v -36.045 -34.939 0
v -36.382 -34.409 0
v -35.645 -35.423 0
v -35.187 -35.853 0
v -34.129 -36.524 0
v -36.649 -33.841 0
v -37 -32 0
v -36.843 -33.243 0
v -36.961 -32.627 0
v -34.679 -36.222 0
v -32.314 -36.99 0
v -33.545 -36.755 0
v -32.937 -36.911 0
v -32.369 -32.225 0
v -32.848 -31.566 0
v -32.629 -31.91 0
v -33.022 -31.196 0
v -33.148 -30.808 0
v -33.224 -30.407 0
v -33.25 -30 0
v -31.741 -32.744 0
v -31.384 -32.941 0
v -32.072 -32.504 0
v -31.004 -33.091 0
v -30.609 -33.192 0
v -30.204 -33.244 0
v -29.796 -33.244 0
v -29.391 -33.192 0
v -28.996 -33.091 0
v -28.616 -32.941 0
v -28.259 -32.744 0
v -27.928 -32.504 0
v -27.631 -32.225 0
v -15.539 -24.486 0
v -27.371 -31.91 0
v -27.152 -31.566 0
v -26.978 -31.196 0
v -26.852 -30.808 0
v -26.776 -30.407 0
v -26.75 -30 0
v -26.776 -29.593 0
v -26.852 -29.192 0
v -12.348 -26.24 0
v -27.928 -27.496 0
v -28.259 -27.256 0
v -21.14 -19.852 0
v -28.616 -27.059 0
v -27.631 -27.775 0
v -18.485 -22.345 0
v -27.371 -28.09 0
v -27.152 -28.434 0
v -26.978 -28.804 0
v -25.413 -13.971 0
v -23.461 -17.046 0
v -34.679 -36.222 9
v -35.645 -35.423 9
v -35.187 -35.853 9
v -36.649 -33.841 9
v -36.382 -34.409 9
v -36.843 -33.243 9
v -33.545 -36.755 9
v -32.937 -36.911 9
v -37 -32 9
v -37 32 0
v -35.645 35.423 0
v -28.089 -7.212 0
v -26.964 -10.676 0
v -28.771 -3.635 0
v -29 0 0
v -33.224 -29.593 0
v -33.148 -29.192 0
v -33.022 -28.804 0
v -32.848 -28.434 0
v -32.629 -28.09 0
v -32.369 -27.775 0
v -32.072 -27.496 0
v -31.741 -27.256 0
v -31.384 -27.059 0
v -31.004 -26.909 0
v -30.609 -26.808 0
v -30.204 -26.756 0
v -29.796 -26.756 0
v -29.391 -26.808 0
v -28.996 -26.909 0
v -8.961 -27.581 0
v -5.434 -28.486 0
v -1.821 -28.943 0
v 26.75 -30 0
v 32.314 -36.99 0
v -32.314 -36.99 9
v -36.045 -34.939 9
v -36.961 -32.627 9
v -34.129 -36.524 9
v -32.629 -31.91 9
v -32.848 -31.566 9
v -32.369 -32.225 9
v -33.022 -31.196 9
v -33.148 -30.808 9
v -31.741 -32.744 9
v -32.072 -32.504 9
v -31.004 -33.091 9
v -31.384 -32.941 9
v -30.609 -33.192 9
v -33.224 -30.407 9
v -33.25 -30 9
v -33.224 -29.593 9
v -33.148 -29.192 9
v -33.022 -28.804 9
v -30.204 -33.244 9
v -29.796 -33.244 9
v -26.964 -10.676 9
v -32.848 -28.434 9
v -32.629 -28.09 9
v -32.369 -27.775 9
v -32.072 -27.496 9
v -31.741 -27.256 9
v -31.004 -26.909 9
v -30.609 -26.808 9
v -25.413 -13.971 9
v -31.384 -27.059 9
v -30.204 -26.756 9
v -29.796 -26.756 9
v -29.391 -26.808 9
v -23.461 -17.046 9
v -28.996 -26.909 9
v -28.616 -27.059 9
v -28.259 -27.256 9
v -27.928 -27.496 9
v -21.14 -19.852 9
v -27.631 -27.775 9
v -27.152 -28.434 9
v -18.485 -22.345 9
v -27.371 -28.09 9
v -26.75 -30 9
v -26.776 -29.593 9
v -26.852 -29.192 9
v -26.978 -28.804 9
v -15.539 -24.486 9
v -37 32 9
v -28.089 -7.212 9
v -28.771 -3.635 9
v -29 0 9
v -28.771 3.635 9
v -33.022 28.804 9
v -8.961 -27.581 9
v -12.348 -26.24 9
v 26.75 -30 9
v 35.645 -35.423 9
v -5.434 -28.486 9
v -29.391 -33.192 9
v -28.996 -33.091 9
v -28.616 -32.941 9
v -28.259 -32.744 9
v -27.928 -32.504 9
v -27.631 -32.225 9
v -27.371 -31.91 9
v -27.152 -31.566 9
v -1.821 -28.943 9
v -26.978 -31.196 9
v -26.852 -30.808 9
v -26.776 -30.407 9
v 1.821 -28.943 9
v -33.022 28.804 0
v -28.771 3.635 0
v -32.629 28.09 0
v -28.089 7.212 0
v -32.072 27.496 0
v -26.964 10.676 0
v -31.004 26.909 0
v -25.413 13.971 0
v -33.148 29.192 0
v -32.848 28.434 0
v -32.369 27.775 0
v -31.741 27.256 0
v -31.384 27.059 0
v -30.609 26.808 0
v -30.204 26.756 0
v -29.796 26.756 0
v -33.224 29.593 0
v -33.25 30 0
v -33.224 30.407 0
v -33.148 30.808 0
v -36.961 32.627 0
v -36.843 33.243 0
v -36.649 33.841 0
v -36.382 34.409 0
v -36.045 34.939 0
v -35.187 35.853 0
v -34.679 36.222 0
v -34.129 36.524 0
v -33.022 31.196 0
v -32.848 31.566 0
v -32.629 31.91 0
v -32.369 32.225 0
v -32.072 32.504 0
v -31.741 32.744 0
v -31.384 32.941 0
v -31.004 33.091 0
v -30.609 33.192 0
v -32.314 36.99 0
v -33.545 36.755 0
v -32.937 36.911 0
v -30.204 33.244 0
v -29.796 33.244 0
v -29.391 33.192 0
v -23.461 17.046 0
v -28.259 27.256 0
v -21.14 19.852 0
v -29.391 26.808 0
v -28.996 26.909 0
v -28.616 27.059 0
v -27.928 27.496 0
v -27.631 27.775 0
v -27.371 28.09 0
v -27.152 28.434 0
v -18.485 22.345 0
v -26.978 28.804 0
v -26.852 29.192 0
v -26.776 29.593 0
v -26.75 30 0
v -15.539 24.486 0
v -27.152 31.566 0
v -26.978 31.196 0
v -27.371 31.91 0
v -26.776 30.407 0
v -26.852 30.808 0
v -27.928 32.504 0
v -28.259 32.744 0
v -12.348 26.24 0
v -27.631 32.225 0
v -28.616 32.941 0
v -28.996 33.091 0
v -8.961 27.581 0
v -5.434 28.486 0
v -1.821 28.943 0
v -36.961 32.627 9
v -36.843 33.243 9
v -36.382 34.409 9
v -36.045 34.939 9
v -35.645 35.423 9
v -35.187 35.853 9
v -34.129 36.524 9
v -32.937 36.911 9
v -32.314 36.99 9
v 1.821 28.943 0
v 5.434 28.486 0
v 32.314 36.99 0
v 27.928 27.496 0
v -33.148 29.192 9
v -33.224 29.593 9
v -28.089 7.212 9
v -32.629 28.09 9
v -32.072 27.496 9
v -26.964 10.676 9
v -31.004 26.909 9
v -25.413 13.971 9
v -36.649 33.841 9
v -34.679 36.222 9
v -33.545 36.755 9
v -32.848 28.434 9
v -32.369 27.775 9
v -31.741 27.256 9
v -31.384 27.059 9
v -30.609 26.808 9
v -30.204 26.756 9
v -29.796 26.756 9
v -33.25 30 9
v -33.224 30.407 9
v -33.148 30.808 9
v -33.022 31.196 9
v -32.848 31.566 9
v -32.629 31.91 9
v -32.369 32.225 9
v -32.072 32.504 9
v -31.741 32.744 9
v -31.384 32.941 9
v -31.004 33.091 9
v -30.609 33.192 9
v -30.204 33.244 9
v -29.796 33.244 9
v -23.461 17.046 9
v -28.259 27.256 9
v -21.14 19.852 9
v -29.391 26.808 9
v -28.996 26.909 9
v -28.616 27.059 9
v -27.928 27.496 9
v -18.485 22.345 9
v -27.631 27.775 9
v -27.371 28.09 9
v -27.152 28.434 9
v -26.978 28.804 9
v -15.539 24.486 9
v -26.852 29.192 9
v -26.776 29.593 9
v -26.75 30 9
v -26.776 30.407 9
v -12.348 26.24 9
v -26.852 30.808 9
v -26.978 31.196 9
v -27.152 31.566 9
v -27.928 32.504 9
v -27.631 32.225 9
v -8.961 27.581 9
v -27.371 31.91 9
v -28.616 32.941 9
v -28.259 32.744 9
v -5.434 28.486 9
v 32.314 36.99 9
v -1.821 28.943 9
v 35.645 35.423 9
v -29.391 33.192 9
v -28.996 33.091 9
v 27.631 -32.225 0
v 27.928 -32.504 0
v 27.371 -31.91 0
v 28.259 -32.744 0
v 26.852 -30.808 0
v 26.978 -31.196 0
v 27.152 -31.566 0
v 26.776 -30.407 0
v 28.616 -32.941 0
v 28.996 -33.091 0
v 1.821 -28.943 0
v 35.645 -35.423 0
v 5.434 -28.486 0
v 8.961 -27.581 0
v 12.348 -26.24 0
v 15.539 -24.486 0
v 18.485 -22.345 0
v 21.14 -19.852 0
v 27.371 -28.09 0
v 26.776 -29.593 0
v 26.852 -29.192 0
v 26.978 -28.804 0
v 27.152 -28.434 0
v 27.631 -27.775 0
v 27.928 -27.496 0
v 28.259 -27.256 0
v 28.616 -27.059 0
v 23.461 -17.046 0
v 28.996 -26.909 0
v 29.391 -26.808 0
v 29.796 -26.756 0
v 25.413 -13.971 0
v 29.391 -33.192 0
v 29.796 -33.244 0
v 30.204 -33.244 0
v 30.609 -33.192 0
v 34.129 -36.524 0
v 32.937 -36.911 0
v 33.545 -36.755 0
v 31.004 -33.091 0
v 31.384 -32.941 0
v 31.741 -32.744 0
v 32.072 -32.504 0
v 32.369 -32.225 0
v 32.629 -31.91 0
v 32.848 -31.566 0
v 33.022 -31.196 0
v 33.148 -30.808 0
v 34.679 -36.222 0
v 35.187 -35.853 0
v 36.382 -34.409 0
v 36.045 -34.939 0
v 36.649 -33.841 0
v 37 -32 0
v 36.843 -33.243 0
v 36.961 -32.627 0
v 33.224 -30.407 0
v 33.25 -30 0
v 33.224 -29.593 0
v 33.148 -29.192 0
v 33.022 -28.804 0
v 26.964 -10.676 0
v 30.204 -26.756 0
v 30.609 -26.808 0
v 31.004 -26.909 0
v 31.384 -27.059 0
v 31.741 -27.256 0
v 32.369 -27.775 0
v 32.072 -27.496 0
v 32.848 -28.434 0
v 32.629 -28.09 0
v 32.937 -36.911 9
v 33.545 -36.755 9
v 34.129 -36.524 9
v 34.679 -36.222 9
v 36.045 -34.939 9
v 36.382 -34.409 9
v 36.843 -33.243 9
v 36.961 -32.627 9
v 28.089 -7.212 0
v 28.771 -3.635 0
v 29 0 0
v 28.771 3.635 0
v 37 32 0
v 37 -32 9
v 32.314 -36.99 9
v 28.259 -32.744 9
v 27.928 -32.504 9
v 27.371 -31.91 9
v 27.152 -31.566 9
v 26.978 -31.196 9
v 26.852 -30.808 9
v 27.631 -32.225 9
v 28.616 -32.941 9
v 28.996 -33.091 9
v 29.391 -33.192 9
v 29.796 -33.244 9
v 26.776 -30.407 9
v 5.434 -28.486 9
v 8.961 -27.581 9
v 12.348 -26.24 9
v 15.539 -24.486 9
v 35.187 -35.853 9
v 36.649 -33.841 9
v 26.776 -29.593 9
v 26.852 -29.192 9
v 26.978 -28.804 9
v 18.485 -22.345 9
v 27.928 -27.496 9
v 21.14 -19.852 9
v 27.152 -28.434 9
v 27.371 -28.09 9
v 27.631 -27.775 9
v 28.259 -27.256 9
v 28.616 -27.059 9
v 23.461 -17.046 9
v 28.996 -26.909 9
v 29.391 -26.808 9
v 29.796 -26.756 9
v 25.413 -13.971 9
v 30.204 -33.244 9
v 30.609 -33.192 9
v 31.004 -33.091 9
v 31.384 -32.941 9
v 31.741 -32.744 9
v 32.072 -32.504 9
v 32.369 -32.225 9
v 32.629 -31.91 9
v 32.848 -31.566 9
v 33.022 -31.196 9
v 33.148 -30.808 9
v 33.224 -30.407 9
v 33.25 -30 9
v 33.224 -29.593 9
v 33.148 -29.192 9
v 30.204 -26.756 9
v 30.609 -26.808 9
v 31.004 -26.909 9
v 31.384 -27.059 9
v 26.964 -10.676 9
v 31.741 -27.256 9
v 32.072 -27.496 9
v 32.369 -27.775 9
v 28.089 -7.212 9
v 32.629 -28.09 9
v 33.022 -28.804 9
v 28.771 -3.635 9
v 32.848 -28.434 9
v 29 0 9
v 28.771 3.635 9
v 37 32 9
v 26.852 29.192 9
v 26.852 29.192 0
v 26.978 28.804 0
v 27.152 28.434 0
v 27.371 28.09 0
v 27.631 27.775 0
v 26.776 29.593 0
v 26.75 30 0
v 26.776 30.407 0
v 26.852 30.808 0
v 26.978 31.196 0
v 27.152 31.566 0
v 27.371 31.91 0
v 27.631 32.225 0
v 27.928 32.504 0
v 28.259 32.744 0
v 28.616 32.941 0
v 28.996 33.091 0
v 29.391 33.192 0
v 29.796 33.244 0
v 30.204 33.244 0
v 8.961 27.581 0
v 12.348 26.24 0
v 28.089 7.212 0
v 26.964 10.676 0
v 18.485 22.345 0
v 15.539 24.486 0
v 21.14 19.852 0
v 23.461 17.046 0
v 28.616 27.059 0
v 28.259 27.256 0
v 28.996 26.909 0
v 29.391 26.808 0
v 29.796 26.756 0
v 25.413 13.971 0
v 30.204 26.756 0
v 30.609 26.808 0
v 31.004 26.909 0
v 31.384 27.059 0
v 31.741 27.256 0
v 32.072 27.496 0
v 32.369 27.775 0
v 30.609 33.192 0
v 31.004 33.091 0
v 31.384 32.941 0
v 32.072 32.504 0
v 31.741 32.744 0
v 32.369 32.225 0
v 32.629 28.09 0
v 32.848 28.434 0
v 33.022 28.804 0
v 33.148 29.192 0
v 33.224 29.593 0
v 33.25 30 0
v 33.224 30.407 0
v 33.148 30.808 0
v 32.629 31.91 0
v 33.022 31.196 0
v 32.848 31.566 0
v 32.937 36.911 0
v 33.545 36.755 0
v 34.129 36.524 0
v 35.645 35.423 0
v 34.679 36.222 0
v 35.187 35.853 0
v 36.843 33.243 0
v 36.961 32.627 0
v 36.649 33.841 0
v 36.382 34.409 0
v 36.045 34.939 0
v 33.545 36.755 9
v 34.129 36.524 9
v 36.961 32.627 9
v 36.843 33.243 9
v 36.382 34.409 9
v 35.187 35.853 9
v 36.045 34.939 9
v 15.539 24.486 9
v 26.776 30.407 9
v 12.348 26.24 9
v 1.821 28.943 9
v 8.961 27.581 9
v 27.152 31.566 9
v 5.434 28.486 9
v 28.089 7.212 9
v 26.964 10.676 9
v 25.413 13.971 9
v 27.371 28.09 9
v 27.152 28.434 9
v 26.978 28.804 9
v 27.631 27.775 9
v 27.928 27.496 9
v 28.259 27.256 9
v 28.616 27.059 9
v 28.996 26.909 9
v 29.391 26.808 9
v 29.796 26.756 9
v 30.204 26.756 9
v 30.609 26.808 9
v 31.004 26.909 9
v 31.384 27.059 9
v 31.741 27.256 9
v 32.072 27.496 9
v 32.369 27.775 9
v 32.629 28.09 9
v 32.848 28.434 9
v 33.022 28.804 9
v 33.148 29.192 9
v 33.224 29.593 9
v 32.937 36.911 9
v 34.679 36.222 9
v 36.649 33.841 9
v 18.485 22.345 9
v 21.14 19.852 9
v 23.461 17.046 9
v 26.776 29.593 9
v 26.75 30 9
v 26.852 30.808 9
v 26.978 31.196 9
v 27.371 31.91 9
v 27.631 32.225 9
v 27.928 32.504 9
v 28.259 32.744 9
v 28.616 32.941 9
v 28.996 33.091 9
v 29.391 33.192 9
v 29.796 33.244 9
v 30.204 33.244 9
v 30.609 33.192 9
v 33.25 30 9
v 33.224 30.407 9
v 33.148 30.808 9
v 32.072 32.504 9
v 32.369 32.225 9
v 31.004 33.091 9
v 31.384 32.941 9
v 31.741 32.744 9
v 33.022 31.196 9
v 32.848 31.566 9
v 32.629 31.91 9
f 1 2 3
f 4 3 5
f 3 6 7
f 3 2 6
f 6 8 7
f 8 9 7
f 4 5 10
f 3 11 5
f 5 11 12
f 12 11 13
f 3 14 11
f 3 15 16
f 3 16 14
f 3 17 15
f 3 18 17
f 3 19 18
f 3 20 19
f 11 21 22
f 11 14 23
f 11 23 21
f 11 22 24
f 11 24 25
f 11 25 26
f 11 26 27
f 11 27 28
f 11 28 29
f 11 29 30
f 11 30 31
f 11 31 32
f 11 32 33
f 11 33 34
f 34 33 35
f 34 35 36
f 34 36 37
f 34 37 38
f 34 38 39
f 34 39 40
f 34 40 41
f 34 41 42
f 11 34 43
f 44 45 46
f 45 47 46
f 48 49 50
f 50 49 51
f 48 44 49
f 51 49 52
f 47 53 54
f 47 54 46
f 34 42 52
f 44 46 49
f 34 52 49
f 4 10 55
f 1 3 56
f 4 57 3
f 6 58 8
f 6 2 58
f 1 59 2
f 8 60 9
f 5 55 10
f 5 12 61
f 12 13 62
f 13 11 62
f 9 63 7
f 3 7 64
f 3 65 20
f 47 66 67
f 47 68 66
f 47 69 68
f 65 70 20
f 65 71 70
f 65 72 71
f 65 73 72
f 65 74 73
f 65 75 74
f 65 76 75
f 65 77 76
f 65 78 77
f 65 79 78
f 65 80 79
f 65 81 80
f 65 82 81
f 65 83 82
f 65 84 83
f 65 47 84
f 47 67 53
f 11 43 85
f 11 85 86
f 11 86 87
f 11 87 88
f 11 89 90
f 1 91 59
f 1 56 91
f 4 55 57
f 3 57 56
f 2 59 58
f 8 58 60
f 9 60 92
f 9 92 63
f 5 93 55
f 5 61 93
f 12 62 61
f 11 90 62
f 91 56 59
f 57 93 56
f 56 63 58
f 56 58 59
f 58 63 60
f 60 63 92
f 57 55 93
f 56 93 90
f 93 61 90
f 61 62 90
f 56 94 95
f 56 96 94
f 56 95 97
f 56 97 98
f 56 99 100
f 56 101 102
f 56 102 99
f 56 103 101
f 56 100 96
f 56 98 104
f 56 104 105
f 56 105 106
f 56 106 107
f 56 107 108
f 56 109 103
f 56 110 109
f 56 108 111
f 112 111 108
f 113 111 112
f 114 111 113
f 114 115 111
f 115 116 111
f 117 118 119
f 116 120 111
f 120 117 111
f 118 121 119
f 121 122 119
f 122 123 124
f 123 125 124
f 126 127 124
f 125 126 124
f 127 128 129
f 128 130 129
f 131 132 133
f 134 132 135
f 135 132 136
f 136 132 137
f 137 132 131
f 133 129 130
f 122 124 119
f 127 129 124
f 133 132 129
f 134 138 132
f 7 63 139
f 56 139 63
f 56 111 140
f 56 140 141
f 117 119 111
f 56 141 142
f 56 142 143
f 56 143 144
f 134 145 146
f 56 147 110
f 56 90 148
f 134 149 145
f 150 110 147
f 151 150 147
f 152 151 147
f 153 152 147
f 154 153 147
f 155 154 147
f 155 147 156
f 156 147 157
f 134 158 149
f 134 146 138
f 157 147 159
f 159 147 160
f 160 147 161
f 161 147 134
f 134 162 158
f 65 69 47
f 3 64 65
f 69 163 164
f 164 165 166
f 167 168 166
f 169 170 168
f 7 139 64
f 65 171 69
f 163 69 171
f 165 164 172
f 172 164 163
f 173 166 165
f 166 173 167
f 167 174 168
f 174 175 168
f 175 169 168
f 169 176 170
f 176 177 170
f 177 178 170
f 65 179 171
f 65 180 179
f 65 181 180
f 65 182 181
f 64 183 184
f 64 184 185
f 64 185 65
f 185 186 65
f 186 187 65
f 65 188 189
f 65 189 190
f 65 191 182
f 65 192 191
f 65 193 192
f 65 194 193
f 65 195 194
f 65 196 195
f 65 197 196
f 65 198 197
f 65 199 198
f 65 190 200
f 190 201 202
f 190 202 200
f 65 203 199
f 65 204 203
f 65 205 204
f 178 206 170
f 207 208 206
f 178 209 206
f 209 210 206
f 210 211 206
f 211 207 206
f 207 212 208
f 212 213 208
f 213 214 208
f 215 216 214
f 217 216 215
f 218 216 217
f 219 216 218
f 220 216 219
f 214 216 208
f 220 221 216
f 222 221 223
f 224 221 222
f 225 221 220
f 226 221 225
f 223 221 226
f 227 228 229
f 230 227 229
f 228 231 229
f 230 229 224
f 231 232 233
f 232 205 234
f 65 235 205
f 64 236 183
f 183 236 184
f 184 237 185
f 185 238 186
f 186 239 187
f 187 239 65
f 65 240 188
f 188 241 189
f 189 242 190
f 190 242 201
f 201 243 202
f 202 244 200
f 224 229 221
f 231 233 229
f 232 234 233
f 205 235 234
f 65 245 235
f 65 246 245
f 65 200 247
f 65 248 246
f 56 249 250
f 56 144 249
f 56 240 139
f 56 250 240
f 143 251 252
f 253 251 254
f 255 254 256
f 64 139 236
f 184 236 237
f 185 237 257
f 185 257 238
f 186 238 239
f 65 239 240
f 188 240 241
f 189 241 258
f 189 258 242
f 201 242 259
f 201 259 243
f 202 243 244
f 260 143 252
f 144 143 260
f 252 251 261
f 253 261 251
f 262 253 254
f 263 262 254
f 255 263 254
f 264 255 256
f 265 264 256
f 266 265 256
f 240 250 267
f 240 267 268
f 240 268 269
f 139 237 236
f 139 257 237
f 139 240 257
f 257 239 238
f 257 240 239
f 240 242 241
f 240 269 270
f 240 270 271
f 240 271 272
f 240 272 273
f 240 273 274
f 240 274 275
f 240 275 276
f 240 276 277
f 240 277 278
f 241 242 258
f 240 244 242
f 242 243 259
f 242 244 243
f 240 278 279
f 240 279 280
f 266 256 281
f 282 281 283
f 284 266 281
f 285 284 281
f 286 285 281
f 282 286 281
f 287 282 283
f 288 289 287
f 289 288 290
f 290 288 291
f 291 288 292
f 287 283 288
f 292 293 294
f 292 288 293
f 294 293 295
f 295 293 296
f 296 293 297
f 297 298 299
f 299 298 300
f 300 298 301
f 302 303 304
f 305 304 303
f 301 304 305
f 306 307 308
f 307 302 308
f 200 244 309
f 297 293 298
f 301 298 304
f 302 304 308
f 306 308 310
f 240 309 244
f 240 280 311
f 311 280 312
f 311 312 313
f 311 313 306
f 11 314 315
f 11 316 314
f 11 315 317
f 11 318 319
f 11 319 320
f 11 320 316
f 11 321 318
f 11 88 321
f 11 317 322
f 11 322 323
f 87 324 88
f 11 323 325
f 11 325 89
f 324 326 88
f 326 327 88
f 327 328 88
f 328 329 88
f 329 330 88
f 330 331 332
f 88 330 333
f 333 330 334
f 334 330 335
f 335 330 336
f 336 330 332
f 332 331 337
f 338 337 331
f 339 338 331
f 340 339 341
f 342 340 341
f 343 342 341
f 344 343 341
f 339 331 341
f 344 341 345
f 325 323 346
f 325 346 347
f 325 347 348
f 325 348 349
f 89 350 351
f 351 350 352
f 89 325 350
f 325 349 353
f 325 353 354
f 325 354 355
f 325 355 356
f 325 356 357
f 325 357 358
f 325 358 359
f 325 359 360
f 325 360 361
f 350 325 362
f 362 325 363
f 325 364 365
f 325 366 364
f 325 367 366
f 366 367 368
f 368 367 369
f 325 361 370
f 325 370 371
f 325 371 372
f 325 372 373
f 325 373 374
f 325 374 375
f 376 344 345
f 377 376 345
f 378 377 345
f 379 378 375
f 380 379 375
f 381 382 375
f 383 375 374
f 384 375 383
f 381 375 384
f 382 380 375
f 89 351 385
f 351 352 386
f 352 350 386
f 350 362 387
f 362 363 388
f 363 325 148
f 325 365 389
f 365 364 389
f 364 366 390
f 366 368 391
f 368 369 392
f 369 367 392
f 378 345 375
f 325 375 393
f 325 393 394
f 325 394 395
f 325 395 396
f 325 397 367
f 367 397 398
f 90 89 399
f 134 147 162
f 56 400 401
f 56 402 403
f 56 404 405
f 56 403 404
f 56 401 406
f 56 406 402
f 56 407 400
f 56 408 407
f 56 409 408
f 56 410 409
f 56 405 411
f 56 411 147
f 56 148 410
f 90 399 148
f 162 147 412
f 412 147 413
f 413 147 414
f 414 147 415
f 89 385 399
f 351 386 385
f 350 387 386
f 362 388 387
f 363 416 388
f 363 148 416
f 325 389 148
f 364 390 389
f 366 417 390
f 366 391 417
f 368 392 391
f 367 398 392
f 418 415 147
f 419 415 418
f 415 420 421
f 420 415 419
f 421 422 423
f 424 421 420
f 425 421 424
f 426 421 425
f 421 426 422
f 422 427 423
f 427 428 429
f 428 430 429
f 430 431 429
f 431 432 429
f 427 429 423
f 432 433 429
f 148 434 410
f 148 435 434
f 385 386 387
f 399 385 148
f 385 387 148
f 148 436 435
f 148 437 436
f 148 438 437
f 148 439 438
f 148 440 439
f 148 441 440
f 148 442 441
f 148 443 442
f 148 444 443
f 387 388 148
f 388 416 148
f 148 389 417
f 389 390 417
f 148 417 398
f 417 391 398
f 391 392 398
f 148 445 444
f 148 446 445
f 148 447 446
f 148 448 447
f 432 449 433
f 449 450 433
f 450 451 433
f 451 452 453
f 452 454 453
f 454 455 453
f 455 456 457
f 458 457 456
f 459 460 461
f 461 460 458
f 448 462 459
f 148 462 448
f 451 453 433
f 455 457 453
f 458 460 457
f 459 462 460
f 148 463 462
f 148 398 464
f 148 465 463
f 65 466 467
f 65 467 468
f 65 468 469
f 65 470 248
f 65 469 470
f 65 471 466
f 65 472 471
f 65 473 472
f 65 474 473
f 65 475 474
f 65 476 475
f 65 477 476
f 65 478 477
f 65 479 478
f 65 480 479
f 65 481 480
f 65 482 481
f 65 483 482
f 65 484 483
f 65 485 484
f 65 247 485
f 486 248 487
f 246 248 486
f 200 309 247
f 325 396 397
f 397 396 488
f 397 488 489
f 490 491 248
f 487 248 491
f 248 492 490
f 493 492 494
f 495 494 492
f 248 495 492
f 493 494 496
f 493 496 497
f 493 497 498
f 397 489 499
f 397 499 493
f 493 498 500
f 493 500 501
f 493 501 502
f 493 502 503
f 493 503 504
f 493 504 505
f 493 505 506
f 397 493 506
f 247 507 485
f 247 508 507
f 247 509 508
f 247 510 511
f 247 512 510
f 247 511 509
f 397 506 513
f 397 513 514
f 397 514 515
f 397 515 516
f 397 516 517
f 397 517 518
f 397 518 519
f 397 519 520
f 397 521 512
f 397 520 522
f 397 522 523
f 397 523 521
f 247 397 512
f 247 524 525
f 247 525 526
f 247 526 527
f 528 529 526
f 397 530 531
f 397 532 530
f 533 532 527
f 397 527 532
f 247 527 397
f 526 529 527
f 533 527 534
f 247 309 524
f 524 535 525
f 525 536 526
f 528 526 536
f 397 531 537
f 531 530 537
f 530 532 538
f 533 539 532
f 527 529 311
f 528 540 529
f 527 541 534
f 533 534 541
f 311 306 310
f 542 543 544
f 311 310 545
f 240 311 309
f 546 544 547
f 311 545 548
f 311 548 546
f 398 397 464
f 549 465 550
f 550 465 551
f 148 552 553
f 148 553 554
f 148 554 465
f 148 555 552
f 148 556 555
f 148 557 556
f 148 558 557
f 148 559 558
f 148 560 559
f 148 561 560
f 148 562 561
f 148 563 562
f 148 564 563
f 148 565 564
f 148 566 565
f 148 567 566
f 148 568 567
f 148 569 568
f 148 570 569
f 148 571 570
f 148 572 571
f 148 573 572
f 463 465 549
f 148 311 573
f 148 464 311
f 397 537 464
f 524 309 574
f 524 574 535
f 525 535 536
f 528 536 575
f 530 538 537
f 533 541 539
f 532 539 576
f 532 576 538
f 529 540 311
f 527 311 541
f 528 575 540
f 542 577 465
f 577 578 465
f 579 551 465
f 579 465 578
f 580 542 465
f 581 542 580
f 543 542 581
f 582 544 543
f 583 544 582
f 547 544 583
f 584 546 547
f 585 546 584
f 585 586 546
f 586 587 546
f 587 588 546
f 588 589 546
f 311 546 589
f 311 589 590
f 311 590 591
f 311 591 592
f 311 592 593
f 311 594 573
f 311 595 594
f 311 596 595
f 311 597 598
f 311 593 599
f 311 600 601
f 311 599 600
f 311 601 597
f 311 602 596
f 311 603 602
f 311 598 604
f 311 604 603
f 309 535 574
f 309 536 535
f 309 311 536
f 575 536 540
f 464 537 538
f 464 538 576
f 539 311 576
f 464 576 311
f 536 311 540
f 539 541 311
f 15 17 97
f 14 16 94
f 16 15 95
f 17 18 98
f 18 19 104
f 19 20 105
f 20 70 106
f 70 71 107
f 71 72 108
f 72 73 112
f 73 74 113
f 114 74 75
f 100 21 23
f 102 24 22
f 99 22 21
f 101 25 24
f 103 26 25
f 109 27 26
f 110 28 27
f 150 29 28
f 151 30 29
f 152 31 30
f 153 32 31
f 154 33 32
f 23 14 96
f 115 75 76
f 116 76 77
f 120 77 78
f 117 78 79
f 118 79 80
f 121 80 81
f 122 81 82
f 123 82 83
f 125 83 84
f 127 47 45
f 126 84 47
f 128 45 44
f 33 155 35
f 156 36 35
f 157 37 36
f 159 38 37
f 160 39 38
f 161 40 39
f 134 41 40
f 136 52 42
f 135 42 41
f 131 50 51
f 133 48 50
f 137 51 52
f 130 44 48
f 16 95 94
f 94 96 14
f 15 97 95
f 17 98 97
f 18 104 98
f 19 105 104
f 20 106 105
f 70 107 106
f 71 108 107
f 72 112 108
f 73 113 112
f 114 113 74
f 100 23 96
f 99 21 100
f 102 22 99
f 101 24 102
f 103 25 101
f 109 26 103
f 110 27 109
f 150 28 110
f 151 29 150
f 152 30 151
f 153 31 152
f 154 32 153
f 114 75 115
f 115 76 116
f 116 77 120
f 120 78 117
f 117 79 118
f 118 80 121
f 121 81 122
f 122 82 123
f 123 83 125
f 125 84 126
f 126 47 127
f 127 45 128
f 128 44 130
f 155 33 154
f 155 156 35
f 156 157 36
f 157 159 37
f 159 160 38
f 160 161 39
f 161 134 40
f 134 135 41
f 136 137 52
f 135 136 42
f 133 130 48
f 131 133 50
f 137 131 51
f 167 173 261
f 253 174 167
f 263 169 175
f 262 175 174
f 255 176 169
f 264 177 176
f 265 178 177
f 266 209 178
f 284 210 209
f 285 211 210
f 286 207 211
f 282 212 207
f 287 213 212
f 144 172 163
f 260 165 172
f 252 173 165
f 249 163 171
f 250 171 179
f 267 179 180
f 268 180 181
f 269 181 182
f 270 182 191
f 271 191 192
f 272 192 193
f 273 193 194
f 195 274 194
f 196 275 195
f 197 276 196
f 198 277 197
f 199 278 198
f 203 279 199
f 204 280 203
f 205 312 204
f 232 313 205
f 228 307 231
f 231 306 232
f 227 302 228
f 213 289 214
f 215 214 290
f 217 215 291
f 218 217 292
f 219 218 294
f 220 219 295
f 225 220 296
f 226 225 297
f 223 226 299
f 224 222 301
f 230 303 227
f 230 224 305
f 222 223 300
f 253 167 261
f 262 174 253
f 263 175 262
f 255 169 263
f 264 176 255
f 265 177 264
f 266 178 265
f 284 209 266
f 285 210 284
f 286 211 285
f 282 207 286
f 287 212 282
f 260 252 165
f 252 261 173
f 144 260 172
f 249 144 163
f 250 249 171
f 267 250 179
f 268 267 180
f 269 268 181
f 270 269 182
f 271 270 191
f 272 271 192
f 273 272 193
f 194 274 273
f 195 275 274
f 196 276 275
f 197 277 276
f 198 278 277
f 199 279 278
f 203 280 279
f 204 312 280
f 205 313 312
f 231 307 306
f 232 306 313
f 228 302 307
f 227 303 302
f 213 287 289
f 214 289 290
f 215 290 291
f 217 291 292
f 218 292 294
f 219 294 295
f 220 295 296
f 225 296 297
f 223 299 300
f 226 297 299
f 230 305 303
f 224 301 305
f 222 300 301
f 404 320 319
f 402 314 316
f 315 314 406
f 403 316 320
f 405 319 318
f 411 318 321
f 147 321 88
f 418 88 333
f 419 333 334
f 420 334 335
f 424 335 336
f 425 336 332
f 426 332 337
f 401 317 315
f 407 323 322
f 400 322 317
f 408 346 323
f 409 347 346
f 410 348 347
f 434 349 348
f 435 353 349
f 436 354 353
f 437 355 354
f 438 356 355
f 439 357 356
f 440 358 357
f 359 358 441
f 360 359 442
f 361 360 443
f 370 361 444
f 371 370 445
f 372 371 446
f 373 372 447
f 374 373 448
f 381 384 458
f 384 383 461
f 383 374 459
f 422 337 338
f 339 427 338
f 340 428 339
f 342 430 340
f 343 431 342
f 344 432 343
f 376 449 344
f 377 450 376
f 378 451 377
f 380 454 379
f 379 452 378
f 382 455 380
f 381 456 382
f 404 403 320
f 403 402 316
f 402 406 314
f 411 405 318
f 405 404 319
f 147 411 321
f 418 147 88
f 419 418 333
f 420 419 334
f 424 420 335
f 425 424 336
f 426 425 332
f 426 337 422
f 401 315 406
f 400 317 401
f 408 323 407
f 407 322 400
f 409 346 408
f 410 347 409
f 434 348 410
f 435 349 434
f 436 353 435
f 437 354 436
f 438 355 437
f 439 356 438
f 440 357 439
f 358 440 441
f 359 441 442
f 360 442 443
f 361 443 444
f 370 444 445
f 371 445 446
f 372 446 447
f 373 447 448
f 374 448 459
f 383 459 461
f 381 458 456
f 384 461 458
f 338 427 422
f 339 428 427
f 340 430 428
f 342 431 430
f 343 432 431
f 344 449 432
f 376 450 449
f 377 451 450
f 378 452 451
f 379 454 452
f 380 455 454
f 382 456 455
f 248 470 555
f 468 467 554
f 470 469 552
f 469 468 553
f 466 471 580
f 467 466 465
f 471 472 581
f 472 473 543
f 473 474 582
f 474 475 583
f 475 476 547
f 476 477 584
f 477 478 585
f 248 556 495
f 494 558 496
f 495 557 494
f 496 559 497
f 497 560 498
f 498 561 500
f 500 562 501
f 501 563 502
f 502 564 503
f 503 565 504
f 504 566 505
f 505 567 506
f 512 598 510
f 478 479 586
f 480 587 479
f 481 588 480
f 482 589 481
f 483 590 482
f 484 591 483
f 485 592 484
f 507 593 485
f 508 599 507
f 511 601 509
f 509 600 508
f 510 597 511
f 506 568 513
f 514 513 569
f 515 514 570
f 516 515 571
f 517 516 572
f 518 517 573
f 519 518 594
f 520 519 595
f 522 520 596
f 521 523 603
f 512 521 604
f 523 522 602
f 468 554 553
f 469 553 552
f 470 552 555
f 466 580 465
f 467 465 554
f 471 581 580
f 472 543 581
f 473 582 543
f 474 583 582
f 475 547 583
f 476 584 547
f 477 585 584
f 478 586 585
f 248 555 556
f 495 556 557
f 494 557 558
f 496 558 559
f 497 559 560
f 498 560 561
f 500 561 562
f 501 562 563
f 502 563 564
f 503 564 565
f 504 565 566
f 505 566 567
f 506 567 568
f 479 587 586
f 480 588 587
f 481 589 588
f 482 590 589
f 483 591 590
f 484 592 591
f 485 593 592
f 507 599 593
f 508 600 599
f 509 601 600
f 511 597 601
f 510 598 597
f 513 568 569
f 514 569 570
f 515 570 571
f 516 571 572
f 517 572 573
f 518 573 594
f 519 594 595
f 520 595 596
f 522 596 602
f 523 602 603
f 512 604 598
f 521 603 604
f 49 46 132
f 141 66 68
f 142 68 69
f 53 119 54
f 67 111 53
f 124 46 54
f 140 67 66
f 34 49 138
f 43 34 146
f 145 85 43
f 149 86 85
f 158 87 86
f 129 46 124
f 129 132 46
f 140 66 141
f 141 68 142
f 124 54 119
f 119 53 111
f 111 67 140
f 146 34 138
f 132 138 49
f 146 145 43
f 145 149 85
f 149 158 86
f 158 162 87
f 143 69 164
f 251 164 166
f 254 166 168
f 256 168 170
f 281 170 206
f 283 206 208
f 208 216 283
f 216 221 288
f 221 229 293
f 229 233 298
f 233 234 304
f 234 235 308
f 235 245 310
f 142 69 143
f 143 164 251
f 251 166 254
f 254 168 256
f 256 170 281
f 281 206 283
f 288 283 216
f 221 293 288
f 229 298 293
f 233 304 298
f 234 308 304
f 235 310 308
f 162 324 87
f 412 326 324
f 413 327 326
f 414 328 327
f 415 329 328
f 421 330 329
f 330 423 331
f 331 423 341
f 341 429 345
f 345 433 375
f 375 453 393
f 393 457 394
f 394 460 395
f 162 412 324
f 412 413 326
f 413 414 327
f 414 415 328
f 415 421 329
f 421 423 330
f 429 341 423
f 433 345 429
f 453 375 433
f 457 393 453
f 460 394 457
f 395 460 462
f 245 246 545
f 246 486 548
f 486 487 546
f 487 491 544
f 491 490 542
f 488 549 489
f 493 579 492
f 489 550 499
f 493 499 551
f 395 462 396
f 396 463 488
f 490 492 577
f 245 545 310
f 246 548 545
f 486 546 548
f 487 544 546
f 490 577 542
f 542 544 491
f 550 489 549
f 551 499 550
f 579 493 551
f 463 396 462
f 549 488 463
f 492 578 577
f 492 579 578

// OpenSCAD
$fn = 50;

difference() {
	union() {
		hull() {
			translate(v = [-32.0, 32.0, 0]) {
				cylinder(h = 9, r = 5);
			}
			translate(v = [32.0, 32.0, 0]) {
				cylinder(h = 9, r = 5);
			}
			translate(v = [-32.0, -32.0, 0]) {
				cylinder(h = 9, r = 5);
			}
			translate(v = [32.0, -32.0, 0]) {
				cylinder(h = 9, r = 5);
			}
		}
	}
	union() {
		translate(v = [-30.0, -30.0, -100.0]) {
			cylinder(h = 200, r = 3.25);
		}
		translate(v = [-30.0, 30.0, -100.0]) {
			cylinder(h = 200, r = 3.25);
		}
		translate(v = [30.0, -30.0, -100.0]) {
			cylinder(h = 200, r = 3.25);
		}
		translate(v = [30.0, 30.0, -100.0]) {
			cylinder(h = 200, r = 3.25);
		}
		translate(v = [-30.0, -30.0, -100.0]) {
			cylinder(h = 200, r = 1.8);
		}
		translate(v = [-30.0, 30.0, -100.0]) {
			cylinder(h = 200, r = 1.8);
		}
		translate(v = [30.0, -30.0, -100.0]) {
			cylinder(h = 200, r = 1.8);
		}
		translate(v = [30.0, 30.0, -100.0]) {
			cylinder(h = 200, r = 1.8);
		}
		cylinder(h = 9, r = 29.0);
	}
}
